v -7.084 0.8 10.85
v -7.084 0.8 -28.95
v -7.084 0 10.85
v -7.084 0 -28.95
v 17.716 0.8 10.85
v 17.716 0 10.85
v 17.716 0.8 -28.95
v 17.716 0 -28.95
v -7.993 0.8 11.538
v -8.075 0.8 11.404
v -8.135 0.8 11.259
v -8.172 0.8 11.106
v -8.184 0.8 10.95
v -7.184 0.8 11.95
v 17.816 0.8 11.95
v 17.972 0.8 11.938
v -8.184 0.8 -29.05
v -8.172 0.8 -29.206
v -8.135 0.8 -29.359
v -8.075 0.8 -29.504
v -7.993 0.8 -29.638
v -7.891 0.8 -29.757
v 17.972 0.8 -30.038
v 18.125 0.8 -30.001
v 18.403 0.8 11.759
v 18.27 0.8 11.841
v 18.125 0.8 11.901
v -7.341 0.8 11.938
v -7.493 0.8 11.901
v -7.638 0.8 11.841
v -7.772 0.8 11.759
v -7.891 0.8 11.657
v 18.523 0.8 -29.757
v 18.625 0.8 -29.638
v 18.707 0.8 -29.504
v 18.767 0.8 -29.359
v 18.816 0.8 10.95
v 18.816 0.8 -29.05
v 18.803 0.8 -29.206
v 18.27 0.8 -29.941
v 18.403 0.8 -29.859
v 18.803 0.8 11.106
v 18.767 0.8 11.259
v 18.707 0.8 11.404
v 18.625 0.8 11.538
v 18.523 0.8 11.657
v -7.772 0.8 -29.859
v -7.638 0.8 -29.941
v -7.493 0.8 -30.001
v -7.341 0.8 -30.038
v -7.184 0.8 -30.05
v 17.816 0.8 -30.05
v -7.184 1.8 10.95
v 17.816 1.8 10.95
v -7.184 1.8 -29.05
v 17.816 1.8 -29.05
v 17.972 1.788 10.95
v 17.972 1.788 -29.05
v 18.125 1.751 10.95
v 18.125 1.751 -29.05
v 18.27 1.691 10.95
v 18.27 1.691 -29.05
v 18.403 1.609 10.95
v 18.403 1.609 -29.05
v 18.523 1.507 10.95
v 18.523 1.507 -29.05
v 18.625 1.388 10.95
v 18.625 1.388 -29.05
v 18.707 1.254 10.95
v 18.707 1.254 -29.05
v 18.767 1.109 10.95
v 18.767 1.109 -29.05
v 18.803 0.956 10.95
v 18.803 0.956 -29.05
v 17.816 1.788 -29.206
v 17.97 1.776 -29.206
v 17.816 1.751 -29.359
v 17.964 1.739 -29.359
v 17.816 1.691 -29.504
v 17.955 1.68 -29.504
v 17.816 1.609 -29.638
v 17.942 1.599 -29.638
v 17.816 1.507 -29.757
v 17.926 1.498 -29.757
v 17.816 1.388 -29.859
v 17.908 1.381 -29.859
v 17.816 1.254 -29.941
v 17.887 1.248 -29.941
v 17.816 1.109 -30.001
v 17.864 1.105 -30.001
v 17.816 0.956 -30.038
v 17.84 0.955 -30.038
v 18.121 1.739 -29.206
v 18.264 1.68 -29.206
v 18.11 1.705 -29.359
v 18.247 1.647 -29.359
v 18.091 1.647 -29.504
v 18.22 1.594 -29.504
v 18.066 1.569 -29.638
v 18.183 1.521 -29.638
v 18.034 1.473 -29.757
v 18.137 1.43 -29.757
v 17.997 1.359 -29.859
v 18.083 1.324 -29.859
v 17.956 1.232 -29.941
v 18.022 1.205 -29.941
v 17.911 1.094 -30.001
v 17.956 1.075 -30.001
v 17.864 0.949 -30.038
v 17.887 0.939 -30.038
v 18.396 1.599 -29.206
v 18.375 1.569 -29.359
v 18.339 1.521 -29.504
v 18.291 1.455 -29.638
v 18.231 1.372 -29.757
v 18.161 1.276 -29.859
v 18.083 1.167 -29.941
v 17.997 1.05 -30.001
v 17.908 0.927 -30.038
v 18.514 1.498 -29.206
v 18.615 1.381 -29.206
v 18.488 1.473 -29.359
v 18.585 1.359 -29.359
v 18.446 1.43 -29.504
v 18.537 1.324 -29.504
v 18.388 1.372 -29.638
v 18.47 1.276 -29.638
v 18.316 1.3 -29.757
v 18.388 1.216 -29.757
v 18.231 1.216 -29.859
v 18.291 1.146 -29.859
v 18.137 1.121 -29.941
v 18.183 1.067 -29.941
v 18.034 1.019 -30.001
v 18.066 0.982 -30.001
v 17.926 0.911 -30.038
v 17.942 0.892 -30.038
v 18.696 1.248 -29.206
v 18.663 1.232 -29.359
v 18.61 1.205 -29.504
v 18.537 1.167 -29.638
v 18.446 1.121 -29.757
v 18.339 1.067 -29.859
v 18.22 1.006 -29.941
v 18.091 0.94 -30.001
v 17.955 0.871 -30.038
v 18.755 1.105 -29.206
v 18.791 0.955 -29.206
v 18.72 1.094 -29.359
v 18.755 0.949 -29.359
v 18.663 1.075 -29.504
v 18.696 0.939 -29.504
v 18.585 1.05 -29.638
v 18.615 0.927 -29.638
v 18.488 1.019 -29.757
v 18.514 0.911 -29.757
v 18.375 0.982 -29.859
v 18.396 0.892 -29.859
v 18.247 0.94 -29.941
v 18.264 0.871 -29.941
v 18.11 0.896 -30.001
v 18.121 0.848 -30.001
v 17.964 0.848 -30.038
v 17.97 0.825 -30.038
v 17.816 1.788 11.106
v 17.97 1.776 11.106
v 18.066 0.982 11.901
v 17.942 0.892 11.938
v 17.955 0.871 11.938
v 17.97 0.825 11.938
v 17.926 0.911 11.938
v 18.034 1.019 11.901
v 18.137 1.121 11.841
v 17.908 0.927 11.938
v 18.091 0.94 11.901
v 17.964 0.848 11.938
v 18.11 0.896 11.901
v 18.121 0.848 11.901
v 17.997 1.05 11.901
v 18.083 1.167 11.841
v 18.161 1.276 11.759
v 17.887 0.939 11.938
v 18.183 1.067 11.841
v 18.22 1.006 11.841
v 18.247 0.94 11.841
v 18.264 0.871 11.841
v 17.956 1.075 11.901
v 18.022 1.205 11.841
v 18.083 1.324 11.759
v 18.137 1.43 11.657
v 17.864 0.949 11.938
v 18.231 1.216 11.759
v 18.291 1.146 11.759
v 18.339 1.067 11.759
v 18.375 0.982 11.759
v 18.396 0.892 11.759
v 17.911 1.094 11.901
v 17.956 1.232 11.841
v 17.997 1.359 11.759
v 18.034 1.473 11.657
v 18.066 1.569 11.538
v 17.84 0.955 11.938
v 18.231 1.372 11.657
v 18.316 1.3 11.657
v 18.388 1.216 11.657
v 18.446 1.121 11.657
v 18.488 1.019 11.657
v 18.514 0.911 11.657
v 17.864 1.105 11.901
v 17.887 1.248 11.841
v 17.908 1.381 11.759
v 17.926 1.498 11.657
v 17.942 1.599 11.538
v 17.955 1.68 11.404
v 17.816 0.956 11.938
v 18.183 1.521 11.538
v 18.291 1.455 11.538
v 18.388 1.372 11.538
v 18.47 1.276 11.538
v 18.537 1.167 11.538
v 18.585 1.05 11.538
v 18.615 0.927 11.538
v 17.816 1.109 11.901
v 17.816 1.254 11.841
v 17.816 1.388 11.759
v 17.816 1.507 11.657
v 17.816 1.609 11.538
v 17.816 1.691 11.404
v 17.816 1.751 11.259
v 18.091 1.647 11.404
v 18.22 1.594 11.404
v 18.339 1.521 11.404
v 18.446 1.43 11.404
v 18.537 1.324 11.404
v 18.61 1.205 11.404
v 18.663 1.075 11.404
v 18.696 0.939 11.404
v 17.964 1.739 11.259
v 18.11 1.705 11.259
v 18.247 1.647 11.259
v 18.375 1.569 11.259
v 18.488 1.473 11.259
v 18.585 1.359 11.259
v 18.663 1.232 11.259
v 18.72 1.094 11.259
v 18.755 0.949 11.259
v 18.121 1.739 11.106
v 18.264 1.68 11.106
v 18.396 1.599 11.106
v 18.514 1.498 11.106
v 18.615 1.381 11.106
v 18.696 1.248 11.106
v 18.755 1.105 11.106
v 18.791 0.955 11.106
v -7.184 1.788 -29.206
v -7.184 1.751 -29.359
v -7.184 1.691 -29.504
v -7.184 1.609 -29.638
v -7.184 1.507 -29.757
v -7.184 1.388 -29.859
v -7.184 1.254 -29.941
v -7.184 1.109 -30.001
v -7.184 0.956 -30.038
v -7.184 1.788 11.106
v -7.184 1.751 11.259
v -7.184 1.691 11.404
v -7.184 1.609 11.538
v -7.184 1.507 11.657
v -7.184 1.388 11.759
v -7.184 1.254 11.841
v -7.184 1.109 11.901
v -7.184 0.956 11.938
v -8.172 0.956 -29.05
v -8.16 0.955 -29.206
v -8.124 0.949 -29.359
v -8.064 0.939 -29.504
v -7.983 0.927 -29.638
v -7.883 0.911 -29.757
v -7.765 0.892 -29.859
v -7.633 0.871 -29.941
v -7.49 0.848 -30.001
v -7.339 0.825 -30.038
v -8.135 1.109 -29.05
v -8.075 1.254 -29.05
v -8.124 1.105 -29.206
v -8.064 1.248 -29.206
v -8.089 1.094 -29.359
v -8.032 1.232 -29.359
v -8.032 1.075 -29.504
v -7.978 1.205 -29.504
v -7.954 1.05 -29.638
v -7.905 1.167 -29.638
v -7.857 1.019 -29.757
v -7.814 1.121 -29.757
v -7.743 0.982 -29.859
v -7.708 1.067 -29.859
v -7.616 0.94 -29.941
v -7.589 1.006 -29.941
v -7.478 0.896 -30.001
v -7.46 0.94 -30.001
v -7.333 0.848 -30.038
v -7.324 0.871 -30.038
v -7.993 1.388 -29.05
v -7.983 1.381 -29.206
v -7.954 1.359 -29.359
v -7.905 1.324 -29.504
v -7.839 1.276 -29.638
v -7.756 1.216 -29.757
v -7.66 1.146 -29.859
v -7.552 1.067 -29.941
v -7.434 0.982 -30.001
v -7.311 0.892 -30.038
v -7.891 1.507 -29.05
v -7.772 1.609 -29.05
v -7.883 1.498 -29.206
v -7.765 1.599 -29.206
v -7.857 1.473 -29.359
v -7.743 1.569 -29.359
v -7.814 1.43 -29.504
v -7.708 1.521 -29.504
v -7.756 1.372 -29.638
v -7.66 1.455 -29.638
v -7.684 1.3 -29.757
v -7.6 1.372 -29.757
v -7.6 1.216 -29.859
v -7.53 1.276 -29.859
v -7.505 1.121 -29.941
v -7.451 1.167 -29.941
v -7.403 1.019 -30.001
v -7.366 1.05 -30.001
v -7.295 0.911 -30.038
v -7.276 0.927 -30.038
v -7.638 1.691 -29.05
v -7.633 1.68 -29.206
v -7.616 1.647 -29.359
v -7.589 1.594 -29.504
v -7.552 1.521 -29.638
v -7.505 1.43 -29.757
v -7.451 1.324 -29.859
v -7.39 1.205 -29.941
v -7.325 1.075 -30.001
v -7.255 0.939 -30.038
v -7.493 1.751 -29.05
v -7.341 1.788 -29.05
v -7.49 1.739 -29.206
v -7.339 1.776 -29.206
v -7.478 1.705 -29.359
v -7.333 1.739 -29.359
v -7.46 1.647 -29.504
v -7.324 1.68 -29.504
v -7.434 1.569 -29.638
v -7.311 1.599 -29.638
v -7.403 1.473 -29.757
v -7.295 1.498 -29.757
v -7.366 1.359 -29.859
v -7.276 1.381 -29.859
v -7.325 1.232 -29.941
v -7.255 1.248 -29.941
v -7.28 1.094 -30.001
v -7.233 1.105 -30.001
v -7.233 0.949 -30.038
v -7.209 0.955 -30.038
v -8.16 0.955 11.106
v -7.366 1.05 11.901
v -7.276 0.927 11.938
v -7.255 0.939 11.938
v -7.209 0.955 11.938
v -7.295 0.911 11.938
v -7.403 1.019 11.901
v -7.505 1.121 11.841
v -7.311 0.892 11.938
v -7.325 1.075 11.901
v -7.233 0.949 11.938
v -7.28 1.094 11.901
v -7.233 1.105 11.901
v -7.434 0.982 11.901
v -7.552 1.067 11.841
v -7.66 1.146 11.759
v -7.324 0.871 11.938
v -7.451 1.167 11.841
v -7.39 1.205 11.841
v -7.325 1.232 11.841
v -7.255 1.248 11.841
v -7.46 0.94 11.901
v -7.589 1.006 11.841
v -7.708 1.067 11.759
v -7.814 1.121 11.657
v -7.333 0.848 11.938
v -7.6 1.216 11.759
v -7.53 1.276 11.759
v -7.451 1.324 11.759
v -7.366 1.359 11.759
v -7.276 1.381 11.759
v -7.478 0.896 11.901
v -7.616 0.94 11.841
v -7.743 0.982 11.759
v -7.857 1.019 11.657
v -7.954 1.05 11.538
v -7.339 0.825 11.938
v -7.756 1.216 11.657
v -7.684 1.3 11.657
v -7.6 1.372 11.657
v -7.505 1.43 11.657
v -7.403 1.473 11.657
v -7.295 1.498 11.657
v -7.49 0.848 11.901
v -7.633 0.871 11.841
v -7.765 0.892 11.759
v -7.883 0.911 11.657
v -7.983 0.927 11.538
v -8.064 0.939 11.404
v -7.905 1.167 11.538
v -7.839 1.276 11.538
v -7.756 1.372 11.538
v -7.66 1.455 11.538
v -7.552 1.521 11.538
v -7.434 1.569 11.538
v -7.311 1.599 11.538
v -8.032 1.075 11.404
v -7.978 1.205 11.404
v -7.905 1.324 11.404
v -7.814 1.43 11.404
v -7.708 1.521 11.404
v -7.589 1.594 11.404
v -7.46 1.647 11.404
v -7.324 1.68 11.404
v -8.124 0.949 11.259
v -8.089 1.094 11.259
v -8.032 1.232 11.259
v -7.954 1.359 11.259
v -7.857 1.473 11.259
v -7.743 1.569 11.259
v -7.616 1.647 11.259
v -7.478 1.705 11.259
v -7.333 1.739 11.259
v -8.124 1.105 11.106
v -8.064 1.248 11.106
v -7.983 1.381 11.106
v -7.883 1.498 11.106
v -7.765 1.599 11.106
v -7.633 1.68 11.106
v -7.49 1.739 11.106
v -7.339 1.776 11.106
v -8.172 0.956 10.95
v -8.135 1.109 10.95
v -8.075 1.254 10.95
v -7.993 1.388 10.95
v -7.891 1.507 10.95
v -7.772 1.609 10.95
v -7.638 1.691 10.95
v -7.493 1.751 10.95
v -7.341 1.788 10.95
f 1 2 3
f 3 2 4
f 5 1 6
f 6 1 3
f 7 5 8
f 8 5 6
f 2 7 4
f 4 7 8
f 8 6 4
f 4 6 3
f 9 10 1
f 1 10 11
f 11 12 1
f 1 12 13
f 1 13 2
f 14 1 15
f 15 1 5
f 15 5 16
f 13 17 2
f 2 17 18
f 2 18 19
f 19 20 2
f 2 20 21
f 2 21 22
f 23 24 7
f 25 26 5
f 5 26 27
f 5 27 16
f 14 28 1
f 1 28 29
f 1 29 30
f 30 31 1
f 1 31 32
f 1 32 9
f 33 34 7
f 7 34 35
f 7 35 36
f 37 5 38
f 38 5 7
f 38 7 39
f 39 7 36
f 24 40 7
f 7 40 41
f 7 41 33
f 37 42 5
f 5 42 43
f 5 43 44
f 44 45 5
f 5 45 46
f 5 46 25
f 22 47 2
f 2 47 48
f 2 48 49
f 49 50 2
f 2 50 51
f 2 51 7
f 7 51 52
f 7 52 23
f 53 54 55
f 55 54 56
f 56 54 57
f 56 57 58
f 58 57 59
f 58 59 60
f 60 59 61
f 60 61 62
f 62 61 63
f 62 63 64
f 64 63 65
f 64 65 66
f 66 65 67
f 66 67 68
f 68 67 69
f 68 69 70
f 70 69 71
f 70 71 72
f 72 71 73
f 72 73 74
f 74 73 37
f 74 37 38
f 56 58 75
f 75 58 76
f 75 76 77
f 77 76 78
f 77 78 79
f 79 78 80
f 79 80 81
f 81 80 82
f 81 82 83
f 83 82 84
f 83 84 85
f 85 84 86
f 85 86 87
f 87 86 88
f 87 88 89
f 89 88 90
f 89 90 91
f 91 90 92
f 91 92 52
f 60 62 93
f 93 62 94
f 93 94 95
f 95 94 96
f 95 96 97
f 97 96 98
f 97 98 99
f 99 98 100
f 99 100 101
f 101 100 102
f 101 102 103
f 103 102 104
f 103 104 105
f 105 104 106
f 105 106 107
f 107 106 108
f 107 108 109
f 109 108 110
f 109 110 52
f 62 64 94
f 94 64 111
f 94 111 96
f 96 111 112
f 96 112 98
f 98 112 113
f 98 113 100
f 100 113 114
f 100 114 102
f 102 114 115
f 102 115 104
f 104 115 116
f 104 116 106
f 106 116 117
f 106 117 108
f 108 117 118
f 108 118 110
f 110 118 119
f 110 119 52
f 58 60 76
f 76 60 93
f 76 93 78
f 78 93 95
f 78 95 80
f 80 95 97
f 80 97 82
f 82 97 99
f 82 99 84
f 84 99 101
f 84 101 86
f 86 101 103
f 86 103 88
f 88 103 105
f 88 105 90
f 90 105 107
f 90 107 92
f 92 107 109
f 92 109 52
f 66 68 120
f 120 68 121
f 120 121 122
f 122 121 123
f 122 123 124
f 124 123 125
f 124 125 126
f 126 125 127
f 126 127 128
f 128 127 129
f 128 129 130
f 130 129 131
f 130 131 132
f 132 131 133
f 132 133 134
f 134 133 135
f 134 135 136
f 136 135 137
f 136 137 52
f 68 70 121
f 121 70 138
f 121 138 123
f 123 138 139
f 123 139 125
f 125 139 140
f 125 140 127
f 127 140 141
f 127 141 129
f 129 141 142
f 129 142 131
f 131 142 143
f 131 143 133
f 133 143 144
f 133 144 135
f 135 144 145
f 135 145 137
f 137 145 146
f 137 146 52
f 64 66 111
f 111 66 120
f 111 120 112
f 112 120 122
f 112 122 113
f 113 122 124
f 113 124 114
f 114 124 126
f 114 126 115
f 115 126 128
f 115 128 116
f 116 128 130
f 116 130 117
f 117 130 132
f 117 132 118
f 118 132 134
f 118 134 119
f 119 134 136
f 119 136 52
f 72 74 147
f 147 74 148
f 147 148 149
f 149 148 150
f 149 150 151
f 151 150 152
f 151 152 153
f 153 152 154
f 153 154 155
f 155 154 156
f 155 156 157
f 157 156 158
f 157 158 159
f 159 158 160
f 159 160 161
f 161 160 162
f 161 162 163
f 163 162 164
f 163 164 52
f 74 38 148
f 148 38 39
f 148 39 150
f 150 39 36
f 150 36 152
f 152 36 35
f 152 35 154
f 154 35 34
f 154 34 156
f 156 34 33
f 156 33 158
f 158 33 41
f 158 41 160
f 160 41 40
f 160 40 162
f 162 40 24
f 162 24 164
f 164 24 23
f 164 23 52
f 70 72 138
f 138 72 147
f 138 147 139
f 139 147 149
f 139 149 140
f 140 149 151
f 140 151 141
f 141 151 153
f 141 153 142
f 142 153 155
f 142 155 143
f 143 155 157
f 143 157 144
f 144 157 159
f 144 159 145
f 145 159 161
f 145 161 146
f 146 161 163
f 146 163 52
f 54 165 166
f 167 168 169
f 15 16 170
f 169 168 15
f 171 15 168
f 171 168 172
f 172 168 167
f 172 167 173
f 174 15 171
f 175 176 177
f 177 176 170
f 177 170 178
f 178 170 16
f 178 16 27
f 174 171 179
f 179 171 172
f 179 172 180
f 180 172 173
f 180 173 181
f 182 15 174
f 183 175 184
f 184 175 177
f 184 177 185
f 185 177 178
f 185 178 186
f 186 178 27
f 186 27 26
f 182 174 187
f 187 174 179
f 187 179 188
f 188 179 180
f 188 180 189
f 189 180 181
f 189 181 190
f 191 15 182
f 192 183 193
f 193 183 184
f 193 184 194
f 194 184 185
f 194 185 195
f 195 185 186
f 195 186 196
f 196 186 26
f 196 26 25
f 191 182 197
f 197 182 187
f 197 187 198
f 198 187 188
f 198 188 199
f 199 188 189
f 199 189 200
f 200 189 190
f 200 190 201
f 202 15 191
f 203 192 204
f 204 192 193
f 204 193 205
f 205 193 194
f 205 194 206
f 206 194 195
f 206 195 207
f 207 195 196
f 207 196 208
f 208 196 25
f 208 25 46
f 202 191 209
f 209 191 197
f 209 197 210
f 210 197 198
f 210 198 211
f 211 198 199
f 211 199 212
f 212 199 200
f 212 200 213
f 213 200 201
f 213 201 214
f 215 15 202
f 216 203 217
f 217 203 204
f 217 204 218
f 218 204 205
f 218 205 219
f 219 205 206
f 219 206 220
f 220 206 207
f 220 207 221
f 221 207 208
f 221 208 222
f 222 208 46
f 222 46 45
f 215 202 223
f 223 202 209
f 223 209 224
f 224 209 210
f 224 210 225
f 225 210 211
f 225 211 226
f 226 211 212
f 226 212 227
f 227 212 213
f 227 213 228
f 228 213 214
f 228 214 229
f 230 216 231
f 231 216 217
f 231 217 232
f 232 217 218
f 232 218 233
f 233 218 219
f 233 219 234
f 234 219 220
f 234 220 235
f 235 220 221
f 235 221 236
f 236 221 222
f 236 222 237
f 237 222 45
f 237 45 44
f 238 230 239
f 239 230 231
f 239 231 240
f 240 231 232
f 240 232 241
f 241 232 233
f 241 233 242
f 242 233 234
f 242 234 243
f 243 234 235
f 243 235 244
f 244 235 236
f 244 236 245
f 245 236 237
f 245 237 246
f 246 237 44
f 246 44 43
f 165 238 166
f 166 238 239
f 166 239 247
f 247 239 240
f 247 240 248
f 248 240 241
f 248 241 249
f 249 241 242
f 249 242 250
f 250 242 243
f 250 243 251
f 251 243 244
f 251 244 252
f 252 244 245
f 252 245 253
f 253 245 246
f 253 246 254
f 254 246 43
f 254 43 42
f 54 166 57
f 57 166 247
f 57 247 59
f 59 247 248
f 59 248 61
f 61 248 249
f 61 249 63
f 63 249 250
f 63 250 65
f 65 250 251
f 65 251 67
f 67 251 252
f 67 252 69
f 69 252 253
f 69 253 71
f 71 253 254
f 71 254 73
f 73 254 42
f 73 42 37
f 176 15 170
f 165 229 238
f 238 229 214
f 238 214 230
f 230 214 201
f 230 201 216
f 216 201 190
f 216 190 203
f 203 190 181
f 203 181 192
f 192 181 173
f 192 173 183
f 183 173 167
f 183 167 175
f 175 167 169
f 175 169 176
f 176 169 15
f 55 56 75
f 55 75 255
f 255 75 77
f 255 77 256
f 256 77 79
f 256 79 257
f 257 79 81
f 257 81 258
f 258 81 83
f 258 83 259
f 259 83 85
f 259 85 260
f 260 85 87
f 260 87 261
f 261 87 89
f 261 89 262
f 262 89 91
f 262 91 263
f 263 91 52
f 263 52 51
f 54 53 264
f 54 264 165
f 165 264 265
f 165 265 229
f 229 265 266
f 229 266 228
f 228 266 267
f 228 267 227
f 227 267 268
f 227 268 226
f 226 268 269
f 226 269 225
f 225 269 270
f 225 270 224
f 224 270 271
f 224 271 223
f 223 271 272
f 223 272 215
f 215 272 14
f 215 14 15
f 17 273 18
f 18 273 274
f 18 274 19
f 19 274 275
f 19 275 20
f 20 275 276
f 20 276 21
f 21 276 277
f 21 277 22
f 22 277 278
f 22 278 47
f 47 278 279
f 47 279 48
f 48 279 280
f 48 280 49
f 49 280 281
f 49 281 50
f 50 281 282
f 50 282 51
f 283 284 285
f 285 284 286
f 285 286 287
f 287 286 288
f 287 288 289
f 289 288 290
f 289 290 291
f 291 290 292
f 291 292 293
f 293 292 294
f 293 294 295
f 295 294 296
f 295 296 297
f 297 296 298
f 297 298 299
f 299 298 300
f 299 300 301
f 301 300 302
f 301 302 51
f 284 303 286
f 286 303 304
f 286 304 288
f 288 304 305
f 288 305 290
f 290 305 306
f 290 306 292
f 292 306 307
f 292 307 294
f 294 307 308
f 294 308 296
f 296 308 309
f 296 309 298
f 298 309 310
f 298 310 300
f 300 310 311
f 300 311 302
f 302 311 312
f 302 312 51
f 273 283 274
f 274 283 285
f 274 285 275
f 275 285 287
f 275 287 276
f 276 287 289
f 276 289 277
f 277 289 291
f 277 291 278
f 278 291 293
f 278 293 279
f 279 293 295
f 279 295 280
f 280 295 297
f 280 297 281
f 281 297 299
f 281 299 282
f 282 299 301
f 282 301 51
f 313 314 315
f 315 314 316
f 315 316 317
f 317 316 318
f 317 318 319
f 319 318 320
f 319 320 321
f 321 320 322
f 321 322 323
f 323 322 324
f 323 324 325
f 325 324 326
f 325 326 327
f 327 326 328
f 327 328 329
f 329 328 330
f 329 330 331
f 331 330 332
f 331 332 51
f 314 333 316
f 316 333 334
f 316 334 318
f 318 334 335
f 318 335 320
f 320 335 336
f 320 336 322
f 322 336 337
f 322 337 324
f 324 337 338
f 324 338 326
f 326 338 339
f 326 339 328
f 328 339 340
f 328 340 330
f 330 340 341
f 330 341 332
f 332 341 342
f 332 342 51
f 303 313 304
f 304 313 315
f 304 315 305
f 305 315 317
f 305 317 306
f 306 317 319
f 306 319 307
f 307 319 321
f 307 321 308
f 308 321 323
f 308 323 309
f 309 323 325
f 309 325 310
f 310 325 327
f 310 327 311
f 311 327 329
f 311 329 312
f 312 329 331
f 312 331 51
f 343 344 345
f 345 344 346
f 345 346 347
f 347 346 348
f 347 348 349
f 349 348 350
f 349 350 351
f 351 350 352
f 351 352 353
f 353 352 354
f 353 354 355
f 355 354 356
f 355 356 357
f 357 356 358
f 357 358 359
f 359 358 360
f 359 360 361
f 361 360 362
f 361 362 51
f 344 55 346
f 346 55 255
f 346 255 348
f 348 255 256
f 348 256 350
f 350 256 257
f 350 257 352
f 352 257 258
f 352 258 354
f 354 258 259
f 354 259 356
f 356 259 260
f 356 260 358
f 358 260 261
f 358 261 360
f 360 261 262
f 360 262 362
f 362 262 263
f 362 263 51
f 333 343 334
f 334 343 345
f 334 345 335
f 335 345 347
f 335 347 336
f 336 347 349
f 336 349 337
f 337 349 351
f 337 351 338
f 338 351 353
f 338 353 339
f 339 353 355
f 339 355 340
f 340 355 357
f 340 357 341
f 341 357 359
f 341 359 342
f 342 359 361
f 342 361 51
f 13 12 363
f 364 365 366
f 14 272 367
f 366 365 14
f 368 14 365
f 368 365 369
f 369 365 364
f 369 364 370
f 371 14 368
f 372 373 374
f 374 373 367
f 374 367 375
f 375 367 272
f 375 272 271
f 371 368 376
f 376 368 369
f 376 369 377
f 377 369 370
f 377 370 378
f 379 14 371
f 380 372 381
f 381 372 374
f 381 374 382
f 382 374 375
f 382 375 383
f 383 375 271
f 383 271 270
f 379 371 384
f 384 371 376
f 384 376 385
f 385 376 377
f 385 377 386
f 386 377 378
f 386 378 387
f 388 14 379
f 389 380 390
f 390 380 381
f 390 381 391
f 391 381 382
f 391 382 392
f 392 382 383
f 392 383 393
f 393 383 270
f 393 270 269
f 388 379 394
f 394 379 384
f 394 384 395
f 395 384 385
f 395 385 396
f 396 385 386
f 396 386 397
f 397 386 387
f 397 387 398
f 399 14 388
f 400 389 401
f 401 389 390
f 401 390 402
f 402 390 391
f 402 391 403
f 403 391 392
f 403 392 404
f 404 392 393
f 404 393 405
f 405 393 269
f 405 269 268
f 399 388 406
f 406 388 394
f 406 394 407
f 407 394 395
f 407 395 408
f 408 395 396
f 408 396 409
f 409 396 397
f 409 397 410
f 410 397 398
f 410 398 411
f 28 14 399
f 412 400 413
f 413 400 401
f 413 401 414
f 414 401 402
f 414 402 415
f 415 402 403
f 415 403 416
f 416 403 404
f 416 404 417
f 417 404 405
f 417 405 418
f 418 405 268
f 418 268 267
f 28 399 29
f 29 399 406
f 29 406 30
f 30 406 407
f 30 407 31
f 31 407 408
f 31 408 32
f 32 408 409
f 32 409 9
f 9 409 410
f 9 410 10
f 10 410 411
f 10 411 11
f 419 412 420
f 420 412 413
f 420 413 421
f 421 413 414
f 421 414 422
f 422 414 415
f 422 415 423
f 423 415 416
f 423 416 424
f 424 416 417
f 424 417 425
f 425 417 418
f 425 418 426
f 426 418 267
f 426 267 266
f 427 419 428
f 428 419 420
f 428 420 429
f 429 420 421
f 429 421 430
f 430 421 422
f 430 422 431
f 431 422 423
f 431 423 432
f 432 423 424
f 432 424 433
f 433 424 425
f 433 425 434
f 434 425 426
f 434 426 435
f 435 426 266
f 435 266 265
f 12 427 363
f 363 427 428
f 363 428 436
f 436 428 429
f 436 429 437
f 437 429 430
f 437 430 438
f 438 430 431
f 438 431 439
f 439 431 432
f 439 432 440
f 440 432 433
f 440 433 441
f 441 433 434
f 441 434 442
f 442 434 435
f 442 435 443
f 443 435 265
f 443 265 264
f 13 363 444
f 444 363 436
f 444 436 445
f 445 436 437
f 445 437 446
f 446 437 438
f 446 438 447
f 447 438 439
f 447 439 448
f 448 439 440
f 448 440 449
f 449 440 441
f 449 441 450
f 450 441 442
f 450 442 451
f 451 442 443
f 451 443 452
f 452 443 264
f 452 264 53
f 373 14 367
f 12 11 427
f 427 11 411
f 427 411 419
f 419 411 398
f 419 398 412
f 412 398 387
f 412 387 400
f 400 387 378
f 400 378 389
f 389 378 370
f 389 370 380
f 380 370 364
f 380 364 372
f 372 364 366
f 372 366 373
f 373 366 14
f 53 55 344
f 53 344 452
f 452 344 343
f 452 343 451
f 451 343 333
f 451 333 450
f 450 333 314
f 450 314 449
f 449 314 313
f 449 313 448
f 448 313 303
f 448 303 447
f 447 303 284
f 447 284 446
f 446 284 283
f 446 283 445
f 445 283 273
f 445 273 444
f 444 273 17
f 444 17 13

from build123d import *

# Parameters (mm, degrees)
SKETCH_1_W      = 24.8
SKETCH_1_H      = 39.8
EXTRUDE_1_DEPTH = 0.8
SKETCH_2_W      = 27
SKETCH_2_H      = 42
EXTRUDE_2_DEPTH = 1
FILLET_1_R      = 1


with BuildPart() as part:
    # ｽｹｯﾁ1 → ﾎﾞｽ - 押し出し1 (new body)
    with BuildSketch(Plane(origin=(0, 0, 0), x_dir=(1, 0, 0), z_dir=(0, 1, 0))):
        with Locations((5.315666607, 9.050036267)):
            Rectangle(SKETCH_1_W, SKETCH_1_H)
    extrude(amount=EXTRUDE_1_DEPTH)

    # ｽｹｯﾁ2 → ﾎﾞｽ - 押し出し2 (add)
    with BuildSketch(Plane(origin=(0, 0.8, 0), x_dir=(1, 0, 0), z_dir=(0, 1, 0))):
        with Locations((5.315666607, 9.050036267)):
            Rectangle(SKETCH_2_W, SKETCH_2_H)
    extrude(amount=EXTRUDE_2_DEPTH)

    # ﾌｨﾚｯﾄ1
    fillet_1_edges = [part.edges().sort_by_distance(p)[0] for p in [
        (-8.184333393, 1.3, -30.050036267),
        (-8.184333393, 1.3, 11.949963733),
        (18.815666607, 1.3, 11.949963733),
        (18.815666607, 1.3, -30.050036267),
        (-8.184333393, 1.8, -9.050036267),
        (5.315666607, 1.8, 11.949963733),
        (18.815666607, 1.8, -9.050036267),
        (5.315666607, 1.8, -30.050036267),
    ]]
    fillet(fillet_1_edges, radius=FILLET_1_R - 0.0001)  # a hair under: the kernel refuses the full size


solid = part.part
